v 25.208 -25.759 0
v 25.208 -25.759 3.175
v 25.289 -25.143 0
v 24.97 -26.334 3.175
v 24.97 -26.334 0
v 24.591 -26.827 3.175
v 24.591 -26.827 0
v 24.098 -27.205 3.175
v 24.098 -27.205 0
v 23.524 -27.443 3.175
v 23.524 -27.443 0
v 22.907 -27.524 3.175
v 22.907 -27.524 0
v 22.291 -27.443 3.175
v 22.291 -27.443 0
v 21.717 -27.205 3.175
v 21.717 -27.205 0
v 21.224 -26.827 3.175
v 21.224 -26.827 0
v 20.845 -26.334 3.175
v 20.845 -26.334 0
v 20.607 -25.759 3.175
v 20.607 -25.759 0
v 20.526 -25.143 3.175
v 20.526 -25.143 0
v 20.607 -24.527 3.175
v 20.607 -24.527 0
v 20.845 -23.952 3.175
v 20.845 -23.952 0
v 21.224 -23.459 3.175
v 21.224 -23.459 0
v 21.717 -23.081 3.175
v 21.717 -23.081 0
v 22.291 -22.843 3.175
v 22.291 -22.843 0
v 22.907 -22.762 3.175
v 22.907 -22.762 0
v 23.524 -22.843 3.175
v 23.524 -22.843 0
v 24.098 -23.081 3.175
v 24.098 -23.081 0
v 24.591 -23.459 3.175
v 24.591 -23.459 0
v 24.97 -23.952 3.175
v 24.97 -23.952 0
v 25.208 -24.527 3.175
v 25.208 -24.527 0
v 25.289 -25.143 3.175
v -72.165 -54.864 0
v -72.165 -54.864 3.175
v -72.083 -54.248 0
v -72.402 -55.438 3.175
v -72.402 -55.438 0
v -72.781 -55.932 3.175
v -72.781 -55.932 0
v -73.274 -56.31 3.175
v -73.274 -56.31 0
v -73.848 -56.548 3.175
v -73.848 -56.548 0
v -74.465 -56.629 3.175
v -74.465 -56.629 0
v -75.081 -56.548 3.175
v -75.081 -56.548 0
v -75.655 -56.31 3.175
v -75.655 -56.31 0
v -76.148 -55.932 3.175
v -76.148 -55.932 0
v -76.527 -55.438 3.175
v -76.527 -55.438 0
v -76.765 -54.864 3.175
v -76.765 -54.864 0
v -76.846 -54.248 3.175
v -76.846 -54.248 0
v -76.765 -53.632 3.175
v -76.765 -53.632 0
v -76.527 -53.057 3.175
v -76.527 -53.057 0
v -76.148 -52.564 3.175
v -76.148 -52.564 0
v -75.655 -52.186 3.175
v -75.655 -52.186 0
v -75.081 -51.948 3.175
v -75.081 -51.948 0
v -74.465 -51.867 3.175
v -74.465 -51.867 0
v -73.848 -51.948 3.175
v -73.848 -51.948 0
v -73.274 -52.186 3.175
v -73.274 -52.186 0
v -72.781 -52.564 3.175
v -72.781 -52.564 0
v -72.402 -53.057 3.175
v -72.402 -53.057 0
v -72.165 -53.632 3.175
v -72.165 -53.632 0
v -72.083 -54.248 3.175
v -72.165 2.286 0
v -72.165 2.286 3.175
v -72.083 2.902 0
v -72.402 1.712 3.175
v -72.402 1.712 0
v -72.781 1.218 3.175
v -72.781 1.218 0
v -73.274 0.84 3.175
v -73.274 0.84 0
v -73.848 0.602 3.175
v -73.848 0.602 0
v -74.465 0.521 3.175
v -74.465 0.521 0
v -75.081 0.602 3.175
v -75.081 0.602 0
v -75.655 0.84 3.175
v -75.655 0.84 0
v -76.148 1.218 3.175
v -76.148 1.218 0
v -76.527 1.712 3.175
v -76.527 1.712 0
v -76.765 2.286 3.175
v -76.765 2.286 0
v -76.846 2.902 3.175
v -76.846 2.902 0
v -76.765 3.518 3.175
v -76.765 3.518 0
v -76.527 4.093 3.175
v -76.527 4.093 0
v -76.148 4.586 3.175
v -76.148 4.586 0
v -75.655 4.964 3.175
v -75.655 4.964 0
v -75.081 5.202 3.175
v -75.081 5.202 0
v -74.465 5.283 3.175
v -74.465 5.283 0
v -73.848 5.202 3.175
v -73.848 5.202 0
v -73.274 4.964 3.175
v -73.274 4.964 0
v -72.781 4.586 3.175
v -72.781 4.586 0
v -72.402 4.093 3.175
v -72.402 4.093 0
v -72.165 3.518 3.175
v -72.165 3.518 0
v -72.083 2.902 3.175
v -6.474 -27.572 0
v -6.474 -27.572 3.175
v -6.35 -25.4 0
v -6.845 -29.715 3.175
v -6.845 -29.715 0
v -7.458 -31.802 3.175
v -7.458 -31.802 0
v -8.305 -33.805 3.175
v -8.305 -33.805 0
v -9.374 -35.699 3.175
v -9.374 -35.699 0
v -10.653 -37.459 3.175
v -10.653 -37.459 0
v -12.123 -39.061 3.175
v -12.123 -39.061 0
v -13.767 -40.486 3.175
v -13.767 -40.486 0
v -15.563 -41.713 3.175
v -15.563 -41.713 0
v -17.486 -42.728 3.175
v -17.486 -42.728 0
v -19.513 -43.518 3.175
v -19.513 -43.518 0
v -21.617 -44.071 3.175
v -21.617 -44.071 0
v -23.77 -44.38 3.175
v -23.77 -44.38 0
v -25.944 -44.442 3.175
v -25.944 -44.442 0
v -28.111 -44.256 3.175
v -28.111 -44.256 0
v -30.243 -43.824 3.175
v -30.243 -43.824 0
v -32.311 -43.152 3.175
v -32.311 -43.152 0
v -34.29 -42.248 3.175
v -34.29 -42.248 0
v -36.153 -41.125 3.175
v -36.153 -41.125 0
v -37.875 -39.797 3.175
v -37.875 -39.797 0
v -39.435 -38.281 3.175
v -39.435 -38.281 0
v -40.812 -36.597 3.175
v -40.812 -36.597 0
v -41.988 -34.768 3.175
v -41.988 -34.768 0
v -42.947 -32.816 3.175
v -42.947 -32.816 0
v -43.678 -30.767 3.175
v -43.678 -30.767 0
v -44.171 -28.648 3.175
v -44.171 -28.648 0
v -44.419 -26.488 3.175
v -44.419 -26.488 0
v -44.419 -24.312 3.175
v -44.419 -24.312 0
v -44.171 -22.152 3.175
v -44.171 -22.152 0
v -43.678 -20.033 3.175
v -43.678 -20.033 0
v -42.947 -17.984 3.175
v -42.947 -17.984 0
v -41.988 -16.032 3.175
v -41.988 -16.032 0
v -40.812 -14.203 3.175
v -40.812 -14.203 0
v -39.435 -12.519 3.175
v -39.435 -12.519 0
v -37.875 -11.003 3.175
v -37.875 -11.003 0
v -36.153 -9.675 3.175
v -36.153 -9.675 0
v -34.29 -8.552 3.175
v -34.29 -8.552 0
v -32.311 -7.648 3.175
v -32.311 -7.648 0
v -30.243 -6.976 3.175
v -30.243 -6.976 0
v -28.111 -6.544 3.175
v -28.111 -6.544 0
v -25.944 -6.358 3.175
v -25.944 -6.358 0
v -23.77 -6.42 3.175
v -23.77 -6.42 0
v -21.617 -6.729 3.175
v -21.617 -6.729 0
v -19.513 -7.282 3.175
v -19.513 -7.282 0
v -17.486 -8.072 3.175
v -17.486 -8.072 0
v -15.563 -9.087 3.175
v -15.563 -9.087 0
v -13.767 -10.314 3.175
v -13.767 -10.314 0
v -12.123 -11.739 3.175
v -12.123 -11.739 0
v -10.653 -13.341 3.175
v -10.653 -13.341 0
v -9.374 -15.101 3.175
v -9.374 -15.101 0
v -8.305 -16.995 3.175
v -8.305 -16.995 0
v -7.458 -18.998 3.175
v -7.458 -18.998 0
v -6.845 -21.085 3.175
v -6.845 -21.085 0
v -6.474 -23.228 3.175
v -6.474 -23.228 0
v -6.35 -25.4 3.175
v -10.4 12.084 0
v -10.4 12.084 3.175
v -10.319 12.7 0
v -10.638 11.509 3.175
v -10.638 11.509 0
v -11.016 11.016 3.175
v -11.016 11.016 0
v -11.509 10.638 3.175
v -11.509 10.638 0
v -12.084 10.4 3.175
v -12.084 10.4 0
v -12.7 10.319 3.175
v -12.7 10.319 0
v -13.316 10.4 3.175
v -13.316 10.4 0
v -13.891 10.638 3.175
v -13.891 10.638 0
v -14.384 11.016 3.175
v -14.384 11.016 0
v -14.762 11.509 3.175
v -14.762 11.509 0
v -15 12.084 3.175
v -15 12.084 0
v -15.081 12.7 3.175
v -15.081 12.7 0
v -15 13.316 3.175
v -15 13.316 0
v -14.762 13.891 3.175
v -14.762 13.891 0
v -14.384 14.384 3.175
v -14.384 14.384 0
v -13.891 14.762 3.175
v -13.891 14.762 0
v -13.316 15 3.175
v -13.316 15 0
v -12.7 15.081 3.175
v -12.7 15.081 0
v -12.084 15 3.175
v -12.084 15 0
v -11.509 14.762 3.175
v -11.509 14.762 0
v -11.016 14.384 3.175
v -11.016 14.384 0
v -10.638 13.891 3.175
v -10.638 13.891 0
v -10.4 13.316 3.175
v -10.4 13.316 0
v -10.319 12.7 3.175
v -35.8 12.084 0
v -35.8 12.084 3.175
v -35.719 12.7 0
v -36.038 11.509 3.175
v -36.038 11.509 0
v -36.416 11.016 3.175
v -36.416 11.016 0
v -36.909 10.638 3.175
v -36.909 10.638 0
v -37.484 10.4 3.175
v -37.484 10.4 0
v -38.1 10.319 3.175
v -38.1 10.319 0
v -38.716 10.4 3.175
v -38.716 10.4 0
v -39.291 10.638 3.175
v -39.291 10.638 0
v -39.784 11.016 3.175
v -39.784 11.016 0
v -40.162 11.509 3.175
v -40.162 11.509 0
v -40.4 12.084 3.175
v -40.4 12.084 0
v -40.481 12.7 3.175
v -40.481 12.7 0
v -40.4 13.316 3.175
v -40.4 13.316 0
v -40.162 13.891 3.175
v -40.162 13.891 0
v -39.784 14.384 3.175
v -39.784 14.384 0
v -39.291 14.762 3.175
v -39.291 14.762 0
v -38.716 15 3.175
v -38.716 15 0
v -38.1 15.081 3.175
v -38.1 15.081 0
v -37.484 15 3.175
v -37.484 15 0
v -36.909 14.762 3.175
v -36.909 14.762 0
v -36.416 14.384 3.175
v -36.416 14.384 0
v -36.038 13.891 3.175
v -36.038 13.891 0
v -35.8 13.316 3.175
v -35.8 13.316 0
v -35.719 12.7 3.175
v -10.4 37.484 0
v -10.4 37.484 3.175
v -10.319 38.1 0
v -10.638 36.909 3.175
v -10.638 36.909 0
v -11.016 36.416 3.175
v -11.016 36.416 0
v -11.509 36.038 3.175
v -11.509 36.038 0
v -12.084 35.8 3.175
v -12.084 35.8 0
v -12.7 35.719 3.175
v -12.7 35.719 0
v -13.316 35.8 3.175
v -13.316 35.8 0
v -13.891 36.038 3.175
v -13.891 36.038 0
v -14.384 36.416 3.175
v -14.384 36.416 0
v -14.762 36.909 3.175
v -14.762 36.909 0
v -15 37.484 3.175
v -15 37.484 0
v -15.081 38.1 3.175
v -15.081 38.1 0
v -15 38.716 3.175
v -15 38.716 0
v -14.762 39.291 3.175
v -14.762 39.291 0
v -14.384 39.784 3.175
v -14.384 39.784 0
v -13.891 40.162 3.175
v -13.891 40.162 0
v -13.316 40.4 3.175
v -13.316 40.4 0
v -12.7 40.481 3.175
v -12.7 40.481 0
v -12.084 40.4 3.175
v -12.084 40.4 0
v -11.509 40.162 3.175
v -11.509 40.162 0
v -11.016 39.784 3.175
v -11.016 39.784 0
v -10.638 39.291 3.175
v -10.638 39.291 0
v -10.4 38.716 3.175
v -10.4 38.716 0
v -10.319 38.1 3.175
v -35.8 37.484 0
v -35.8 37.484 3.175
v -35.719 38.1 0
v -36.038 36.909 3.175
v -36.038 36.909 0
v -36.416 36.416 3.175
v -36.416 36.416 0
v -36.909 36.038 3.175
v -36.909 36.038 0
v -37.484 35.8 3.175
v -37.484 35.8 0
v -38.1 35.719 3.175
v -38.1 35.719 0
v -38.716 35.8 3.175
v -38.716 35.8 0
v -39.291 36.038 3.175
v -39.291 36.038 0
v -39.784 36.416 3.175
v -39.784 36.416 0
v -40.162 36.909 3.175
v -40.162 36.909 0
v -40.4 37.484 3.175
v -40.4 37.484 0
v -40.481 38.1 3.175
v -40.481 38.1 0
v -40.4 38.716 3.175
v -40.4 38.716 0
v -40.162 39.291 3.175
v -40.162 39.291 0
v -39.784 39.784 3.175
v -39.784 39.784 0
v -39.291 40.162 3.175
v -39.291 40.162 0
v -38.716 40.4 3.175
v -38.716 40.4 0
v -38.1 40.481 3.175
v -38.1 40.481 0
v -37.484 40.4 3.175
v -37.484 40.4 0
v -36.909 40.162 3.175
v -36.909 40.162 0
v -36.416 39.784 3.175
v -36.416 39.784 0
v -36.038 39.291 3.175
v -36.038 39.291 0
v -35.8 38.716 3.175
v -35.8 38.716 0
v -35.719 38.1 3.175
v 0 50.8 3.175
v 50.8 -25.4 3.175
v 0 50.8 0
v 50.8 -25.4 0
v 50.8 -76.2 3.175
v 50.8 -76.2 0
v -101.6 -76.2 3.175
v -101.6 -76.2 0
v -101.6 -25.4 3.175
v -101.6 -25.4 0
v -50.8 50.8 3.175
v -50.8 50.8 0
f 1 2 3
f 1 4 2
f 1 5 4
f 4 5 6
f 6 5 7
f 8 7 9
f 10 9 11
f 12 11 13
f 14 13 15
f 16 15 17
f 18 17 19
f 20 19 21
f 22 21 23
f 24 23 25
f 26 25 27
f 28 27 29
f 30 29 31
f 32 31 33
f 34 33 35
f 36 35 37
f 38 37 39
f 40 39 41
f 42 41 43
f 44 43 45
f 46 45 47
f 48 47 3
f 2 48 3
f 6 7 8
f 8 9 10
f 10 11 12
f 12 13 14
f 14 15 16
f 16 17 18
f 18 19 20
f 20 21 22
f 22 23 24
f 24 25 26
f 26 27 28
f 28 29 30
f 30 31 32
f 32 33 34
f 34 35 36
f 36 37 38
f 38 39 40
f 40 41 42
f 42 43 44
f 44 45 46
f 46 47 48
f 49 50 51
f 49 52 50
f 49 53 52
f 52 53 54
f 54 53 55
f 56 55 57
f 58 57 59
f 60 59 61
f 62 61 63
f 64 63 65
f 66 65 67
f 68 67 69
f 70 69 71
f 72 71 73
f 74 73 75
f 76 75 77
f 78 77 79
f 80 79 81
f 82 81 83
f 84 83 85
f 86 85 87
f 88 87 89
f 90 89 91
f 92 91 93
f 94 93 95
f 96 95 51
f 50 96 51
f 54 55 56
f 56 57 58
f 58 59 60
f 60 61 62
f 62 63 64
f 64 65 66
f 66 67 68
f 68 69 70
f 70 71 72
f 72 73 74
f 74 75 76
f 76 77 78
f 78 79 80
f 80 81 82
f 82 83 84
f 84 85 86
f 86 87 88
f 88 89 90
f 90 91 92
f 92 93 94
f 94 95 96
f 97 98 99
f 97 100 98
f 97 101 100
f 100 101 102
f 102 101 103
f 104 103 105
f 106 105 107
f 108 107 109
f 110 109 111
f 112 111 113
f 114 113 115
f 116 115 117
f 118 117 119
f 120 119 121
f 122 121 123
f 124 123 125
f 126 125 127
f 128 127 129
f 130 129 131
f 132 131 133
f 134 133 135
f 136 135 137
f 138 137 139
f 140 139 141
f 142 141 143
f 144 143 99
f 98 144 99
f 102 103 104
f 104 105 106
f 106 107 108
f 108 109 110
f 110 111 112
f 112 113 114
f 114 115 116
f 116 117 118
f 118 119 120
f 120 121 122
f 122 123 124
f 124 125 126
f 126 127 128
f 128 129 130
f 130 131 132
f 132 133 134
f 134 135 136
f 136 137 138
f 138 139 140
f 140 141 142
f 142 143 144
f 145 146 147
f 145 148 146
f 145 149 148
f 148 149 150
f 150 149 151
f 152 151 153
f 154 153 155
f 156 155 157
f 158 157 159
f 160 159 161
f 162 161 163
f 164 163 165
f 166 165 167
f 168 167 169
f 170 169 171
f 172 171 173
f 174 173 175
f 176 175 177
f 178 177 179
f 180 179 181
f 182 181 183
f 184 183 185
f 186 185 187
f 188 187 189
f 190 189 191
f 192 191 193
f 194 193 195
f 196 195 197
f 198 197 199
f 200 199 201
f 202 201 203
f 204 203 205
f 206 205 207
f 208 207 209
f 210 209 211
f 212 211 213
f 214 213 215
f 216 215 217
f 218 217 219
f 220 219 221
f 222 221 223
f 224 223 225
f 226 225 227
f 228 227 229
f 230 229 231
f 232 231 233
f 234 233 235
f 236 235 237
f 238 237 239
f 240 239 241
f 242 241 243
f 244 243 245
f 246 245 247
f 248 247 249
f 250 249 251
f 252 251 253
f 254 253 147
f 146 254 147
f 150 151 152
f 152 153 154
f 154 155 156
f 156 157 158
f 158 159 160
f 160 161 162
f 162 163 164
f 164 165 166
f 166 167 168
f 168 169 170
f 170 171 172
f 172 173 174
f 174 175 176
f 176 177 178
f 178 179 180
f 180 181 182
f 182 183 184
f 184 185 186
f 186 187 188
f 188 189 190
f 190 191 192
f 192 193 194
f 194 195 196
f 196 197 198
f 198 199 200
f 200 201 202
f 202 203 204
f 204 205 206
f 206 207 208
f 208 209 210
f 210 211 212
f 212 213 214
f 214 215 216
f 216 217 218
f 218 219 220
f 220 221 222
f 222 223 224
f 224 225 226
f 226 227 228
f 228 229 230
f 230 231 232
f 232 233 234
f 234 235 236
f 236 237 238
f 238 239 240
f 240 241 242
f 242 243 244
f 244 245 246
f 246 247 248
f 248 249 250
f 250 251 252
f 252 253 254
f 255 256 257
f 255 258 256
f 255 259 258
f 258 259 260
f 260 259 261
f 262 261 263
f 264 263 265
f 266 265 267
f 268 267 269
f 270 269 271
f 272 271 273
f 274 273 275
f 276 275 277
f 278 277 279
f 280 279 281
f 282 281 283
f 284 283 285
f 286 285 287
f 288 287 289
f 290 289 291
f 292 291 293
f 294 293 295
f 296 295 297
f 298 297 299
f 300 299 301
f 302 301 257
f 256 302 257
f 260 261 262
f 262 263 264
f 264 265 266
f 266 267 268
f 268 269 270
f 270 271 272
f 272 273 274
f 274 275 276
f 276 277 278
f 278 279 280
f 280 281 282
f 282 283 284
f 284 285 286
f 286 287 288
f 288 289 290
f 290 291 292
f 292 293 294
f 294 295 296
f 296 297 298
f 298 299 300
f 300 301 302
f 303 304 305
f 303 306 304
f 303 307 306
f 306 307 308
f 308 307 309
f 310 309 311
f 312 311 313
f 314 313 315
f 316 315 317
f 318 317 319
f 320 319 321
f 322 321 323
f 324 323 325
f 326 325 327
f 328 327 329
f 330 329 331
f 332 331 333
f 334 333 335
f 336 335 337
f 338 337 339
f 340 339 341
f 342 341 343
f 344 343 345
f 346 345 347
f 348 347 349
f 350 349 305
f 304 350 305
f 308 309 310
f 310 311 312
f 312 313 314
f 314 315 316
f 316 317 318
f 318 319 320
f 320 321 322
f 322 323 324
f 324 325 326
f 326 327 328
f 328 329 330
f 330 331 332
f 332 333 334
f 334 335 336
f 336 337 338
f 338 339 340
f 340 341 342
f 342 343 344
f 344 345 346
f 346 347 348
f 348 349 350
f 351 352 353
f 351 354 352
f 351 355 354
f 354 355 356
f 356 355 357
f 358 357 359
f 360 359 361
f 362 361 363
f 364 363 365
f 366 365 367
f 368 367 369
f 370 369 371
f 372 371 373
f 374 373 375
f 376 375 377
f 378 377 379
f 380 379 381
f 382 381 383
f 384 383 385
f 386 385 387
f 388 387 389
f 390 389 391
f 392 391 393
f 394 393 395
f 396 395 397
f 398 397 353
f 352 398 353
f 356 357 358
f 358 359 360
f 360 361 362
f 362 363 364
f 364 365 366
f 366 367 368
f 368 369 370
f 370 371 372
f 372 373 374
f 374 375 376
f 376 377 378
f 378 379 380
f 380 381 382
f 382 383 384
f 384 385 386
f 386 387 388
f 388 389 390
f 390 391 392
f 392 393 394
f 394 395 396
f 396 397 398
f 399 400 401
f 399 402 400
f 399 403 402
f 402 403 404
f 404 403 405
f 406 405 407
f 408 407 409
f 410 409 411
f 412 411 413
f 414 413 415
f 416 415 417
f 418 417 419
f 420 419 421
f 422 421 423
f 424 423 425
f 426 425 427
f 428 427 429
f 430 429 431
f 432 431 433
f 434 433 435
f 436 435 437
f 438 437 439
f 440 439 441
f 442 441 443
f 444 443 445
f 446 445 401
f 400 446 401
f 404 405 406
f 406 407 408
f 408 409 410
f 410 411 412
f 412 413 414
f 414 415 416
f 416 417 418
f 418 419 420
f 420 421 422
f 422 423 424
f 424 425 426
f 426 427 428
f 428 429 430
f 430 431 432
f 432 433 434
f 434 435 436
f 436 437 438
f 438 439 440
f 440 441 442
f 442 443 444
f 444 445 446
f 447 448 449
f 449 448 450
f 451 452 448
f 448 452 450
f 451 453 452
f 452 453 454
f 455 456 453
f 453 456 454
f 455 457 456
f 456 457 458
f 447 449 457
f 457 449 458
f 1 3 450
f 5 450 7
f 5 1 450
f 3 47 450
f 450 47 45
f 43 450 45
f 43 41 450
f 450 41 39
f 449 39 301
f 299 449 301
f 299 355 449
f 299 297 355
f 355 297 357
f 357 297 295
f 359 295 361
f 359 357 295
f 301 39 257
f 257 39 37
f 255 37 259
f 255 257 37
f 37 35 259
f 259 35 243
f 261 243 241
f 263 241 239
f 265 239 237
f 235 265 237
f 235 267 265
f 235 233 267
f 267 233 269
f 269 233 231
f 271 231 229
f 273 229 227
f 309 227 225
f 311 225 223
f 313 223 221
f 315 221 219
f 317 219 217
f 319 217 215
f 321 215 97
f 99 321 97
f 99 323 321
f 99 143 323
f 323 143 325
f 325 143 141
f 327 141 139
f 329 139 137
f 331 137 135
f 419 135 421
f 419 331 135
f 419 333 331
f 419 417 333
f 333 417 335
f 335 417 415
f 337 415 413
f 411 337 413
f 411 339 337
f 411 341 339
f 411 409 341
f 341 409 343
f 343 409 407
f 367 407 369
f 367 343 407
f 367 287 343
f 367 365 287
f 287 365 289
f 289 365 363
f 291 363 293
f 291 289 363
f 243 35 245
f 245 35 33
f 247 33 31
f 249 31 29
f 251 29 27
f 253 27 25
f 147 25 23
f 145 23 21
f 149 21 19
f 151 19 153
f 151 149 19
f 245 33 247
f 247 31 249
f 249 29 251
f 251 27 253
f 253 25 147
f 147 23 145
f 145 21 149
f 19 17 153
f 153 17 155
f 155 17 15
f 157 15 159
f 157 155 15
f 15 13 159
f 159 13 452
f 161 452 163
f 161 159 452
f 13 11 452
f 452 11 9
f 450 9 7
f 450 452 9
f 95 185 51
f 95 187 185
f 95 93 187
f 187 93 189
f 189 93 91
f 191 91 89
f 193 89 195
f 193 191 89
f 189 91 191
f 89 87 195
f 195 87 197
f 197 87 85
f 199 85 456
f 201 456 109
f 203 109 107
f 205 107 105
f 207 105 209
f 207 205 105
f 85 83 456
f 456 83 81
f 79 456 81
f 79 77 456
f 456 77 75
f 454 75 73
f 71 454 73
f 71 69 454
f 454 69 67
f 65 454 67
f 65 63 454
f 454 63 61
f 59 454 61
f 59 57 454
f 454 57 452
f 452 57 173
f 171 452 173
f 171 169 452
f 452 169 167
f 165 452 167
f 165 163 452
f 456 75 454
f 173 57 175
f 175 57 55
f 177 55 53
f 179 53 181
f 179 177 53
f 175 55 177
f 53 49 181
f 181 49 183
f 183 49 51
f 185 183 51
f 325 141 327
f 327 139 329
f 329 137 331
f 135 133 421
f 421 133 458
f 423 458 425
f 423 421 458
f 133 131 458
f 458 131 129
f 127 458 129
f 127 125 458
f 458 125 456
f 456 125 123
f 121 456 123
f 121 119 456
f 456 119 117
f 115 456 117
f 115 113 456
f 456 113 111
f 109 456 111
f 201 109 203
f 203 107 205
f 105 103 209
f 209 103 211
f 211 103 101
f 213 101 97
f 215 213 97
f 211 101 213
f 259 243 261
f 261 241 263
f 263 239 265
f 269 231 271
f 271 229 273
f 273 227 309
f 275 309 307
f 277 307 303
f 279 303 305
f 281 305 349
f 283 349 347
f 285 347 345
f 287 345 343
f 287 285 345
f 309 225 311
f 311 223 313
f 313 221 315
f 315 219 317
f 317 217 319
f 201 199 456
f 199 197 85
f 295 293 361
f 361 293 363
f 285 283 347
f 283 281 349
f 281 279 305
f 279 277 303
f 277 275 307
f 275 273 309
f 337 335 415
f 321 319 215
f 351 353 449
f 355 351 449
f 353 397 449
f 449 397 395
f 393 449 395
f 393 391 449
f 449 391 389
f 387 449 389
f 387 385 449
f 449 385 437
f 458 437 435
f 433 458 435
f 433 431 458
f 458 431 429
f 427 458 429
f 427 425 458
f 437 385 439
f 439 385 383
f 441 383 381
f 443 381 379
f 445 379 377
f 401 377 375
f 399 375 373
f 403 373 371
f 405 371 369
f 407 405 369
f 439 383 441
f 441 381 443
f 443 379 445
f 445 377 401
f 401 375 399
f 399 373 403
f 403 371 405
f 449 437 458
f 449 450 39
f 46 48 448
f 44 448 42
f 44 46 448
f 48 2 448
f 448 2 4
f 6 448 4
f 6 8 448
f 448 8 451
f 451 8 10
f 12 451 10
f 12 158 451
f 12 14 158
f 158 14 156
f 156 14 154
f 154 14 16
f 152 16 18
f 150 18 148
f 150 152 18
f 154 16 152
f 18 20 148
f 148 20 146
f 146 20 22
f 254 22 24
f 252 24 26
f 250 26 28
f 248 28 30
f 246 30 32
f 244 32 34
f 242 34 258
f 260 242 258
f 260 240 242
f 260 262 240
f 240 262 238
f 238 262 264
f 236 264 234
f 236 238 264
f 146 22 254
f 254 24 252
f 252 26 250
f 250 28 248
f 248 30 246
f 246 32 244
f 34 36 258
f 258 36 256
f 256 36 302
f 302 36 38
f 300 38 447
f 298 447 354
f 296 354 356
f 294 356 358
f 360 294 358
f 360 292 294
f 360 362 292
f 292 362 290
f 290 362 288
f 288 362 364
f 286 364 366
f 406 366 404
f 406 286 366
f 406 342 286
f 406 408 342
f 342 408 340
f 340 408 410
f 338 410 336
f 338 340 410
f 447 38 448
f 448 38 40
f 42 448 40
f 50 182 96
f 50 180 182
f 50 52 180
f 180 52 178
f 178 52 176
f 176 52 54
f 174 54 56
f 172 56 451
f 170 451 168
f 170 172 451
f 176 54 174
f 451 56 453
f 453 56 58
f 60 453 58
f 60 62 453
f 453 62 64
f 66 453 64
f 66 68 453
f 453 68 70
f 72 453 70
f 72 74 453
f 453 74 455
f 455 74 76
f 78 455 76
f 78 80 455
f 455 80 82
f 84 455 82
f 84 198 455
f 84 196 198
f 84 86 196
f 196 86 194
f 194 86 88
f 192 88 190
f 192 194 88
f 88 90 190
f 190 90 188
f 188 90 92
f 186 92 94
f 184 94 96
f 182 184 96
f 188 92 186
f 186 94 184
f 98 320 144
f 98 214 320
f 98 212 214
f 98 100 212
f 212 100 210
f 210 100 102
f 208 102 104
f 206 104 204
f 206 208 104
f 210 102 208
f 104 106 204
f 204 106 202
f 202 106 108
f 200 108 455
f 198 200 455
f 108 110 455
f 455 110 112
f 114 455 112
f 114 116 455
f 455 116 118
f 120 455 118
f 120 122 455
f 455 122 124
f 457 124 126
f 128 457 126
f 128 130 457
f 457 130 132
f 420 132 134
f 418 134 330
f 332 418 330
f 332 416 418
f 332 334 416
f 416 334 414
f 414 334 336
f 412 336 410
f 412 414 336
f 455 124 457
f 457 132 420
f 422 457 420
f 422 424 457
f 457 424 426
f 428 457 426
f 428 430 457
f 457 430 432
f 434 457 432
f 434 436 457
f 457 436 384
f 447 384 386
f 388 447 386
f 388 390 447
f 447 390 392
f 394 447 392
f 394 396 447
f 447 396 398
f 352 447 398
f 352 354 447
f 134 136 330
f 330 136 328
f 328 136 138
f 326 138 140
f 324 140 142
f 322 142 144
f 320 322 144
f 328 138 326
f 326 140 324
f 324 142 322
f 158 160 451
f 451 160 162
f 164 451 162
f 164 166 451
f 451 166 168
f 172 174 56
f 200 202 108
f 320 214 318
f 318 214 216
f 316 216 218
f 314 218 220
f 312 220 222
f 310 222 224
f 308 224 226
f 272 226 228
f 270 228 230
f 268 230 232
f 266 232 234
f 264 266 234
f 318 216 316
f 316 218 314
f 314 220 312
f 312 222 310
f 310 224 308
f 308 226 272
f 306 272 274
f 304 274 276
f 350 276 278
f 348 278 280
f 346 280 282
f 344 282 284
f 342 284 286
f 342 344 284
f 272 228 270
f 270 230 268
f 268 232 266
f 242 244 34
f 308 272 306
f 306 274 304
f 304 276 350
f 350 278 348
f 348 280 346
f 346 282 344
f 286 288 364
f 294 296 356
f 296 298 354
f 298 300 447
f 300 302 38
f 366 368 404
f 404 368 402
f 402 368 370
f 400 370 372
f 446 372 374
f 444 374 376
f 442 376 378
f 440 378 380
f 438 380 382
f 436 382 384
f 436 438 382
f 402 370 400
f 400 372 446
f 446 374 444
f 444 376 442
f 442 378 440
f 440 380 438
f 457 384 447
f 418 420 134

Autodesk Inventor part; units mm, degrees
ref_plane "YZ Plane" through (0, 0, 0) normal (1, 0, 0) x (0, 1, 0)
ref_plane "XZ Plane" through (0, 0, 0) normal (0, 1, 0) x (-1, 0, 0)
ref_plane "XY Plane" through (0, 0, 0) normal (0, 0, 1) x (1, 0, 0)
sketch "Sketch1" plane through (0, 0, 0) normal (0, 0, 1) x (1, 0, 0)
  line L0 (0, 50.8) -> (-50.8, 50.8)
  line L1 (-101.6, -76.2) -> (50.8, -76.2)
  line L2 (0, 0) -> (0, 50.8) construction
  line L3 (-101.6, -76.2) -> (-101.6, -25.4)
  line L4 (-101.6, -25.4) -> (-50.8, 50.8)
  line L5 (0, 50.8) -> (50.8, -25.4)
  line L6 (50.8, -25.4) -> (50.8, -76.2)
  dimension "d0" = 50.8
  dimension "d3" = 50.8
  dimension "d17" = 127
  dimension "d18" = 50.8
  dimension "d26" = 152.4
extrude "Extrusion1" add sketch "Sketch1" along normal blind 3.175
sketch "Sketch2" plane through (0, 0, 3.175) normal (0, 0, 1) x (1, 0, 0)
  line L0 (-50.8, 50.8) -> (0, 50.8) projected
  line L1 (-50.8, -76.2) -> (-50.8, 50.8) projected
  circle A0 centre (-38.1, 38.1) radius 2.3813
  circle A1 centre (-12.7, 38.1) radius 2.3813
  circle A2 centre (-38.1, 12.7) radius 2.3813
  circle A3 centre (-12.7, 12.7) radius 2.3813
  line L2 (-38.1, 38.1) -> (-12.7, 38.1) construction
  line L3 (-12.7, 38.1) -> (-12.7, 12.7) construction
  line L4 (-12.7, 12.7) -> (-38.1, 12.7) construction
  line L5 (-38.1, 12.7) -> (-38.1, 38.1) construction
  point P0 (-101.6, -76.2)
  point P1 (0, 0)
  dimension "d6" = 4.7625
  dimension "d7" = 12.7
  dimension "d8" = 25.4
  dimension "d9" = 12.7
  dimension "d10" = 25.4
extrude "Extrusion2" cut sketch "Sketch2" against normal up to next
sketch "Sketch3" plane through (0, 0, 3.175) normal (0, 0, 1) x (1, 0, 0)
  circle A0 centre (-25.4, -25.4) radius 19.05
  point P0 (0, 0)
  dimension "d13" = 25.4
  dimension "d14" = 38.1
extrude "Extrusion3" cut sketch "Sketch3" against normal up to next
sketch "Sketch4" plane through (0, 0, 3.175) normal (0, 0, 1) x (1, 0, 0)
  circle A0 centre (-74.4647, 2.9021) radius 2.3813
  circle A1 centre (-74.4647, -54.2479) radius 2.3813
  circle A2 centre (22.9075, -25.1429) radius 2.3813
  line L0 (-74.4647, 2.9021) -> (-74.4647, -54.2479)
  point P0 (0, 0)
  dimension "d20" = 4.7625
  dimension "d23" = 57.15
extrude "Extrusion4" cut sketch "Sketch4" against normal up to next
properties part number "Plate_PictureMountPlate"
